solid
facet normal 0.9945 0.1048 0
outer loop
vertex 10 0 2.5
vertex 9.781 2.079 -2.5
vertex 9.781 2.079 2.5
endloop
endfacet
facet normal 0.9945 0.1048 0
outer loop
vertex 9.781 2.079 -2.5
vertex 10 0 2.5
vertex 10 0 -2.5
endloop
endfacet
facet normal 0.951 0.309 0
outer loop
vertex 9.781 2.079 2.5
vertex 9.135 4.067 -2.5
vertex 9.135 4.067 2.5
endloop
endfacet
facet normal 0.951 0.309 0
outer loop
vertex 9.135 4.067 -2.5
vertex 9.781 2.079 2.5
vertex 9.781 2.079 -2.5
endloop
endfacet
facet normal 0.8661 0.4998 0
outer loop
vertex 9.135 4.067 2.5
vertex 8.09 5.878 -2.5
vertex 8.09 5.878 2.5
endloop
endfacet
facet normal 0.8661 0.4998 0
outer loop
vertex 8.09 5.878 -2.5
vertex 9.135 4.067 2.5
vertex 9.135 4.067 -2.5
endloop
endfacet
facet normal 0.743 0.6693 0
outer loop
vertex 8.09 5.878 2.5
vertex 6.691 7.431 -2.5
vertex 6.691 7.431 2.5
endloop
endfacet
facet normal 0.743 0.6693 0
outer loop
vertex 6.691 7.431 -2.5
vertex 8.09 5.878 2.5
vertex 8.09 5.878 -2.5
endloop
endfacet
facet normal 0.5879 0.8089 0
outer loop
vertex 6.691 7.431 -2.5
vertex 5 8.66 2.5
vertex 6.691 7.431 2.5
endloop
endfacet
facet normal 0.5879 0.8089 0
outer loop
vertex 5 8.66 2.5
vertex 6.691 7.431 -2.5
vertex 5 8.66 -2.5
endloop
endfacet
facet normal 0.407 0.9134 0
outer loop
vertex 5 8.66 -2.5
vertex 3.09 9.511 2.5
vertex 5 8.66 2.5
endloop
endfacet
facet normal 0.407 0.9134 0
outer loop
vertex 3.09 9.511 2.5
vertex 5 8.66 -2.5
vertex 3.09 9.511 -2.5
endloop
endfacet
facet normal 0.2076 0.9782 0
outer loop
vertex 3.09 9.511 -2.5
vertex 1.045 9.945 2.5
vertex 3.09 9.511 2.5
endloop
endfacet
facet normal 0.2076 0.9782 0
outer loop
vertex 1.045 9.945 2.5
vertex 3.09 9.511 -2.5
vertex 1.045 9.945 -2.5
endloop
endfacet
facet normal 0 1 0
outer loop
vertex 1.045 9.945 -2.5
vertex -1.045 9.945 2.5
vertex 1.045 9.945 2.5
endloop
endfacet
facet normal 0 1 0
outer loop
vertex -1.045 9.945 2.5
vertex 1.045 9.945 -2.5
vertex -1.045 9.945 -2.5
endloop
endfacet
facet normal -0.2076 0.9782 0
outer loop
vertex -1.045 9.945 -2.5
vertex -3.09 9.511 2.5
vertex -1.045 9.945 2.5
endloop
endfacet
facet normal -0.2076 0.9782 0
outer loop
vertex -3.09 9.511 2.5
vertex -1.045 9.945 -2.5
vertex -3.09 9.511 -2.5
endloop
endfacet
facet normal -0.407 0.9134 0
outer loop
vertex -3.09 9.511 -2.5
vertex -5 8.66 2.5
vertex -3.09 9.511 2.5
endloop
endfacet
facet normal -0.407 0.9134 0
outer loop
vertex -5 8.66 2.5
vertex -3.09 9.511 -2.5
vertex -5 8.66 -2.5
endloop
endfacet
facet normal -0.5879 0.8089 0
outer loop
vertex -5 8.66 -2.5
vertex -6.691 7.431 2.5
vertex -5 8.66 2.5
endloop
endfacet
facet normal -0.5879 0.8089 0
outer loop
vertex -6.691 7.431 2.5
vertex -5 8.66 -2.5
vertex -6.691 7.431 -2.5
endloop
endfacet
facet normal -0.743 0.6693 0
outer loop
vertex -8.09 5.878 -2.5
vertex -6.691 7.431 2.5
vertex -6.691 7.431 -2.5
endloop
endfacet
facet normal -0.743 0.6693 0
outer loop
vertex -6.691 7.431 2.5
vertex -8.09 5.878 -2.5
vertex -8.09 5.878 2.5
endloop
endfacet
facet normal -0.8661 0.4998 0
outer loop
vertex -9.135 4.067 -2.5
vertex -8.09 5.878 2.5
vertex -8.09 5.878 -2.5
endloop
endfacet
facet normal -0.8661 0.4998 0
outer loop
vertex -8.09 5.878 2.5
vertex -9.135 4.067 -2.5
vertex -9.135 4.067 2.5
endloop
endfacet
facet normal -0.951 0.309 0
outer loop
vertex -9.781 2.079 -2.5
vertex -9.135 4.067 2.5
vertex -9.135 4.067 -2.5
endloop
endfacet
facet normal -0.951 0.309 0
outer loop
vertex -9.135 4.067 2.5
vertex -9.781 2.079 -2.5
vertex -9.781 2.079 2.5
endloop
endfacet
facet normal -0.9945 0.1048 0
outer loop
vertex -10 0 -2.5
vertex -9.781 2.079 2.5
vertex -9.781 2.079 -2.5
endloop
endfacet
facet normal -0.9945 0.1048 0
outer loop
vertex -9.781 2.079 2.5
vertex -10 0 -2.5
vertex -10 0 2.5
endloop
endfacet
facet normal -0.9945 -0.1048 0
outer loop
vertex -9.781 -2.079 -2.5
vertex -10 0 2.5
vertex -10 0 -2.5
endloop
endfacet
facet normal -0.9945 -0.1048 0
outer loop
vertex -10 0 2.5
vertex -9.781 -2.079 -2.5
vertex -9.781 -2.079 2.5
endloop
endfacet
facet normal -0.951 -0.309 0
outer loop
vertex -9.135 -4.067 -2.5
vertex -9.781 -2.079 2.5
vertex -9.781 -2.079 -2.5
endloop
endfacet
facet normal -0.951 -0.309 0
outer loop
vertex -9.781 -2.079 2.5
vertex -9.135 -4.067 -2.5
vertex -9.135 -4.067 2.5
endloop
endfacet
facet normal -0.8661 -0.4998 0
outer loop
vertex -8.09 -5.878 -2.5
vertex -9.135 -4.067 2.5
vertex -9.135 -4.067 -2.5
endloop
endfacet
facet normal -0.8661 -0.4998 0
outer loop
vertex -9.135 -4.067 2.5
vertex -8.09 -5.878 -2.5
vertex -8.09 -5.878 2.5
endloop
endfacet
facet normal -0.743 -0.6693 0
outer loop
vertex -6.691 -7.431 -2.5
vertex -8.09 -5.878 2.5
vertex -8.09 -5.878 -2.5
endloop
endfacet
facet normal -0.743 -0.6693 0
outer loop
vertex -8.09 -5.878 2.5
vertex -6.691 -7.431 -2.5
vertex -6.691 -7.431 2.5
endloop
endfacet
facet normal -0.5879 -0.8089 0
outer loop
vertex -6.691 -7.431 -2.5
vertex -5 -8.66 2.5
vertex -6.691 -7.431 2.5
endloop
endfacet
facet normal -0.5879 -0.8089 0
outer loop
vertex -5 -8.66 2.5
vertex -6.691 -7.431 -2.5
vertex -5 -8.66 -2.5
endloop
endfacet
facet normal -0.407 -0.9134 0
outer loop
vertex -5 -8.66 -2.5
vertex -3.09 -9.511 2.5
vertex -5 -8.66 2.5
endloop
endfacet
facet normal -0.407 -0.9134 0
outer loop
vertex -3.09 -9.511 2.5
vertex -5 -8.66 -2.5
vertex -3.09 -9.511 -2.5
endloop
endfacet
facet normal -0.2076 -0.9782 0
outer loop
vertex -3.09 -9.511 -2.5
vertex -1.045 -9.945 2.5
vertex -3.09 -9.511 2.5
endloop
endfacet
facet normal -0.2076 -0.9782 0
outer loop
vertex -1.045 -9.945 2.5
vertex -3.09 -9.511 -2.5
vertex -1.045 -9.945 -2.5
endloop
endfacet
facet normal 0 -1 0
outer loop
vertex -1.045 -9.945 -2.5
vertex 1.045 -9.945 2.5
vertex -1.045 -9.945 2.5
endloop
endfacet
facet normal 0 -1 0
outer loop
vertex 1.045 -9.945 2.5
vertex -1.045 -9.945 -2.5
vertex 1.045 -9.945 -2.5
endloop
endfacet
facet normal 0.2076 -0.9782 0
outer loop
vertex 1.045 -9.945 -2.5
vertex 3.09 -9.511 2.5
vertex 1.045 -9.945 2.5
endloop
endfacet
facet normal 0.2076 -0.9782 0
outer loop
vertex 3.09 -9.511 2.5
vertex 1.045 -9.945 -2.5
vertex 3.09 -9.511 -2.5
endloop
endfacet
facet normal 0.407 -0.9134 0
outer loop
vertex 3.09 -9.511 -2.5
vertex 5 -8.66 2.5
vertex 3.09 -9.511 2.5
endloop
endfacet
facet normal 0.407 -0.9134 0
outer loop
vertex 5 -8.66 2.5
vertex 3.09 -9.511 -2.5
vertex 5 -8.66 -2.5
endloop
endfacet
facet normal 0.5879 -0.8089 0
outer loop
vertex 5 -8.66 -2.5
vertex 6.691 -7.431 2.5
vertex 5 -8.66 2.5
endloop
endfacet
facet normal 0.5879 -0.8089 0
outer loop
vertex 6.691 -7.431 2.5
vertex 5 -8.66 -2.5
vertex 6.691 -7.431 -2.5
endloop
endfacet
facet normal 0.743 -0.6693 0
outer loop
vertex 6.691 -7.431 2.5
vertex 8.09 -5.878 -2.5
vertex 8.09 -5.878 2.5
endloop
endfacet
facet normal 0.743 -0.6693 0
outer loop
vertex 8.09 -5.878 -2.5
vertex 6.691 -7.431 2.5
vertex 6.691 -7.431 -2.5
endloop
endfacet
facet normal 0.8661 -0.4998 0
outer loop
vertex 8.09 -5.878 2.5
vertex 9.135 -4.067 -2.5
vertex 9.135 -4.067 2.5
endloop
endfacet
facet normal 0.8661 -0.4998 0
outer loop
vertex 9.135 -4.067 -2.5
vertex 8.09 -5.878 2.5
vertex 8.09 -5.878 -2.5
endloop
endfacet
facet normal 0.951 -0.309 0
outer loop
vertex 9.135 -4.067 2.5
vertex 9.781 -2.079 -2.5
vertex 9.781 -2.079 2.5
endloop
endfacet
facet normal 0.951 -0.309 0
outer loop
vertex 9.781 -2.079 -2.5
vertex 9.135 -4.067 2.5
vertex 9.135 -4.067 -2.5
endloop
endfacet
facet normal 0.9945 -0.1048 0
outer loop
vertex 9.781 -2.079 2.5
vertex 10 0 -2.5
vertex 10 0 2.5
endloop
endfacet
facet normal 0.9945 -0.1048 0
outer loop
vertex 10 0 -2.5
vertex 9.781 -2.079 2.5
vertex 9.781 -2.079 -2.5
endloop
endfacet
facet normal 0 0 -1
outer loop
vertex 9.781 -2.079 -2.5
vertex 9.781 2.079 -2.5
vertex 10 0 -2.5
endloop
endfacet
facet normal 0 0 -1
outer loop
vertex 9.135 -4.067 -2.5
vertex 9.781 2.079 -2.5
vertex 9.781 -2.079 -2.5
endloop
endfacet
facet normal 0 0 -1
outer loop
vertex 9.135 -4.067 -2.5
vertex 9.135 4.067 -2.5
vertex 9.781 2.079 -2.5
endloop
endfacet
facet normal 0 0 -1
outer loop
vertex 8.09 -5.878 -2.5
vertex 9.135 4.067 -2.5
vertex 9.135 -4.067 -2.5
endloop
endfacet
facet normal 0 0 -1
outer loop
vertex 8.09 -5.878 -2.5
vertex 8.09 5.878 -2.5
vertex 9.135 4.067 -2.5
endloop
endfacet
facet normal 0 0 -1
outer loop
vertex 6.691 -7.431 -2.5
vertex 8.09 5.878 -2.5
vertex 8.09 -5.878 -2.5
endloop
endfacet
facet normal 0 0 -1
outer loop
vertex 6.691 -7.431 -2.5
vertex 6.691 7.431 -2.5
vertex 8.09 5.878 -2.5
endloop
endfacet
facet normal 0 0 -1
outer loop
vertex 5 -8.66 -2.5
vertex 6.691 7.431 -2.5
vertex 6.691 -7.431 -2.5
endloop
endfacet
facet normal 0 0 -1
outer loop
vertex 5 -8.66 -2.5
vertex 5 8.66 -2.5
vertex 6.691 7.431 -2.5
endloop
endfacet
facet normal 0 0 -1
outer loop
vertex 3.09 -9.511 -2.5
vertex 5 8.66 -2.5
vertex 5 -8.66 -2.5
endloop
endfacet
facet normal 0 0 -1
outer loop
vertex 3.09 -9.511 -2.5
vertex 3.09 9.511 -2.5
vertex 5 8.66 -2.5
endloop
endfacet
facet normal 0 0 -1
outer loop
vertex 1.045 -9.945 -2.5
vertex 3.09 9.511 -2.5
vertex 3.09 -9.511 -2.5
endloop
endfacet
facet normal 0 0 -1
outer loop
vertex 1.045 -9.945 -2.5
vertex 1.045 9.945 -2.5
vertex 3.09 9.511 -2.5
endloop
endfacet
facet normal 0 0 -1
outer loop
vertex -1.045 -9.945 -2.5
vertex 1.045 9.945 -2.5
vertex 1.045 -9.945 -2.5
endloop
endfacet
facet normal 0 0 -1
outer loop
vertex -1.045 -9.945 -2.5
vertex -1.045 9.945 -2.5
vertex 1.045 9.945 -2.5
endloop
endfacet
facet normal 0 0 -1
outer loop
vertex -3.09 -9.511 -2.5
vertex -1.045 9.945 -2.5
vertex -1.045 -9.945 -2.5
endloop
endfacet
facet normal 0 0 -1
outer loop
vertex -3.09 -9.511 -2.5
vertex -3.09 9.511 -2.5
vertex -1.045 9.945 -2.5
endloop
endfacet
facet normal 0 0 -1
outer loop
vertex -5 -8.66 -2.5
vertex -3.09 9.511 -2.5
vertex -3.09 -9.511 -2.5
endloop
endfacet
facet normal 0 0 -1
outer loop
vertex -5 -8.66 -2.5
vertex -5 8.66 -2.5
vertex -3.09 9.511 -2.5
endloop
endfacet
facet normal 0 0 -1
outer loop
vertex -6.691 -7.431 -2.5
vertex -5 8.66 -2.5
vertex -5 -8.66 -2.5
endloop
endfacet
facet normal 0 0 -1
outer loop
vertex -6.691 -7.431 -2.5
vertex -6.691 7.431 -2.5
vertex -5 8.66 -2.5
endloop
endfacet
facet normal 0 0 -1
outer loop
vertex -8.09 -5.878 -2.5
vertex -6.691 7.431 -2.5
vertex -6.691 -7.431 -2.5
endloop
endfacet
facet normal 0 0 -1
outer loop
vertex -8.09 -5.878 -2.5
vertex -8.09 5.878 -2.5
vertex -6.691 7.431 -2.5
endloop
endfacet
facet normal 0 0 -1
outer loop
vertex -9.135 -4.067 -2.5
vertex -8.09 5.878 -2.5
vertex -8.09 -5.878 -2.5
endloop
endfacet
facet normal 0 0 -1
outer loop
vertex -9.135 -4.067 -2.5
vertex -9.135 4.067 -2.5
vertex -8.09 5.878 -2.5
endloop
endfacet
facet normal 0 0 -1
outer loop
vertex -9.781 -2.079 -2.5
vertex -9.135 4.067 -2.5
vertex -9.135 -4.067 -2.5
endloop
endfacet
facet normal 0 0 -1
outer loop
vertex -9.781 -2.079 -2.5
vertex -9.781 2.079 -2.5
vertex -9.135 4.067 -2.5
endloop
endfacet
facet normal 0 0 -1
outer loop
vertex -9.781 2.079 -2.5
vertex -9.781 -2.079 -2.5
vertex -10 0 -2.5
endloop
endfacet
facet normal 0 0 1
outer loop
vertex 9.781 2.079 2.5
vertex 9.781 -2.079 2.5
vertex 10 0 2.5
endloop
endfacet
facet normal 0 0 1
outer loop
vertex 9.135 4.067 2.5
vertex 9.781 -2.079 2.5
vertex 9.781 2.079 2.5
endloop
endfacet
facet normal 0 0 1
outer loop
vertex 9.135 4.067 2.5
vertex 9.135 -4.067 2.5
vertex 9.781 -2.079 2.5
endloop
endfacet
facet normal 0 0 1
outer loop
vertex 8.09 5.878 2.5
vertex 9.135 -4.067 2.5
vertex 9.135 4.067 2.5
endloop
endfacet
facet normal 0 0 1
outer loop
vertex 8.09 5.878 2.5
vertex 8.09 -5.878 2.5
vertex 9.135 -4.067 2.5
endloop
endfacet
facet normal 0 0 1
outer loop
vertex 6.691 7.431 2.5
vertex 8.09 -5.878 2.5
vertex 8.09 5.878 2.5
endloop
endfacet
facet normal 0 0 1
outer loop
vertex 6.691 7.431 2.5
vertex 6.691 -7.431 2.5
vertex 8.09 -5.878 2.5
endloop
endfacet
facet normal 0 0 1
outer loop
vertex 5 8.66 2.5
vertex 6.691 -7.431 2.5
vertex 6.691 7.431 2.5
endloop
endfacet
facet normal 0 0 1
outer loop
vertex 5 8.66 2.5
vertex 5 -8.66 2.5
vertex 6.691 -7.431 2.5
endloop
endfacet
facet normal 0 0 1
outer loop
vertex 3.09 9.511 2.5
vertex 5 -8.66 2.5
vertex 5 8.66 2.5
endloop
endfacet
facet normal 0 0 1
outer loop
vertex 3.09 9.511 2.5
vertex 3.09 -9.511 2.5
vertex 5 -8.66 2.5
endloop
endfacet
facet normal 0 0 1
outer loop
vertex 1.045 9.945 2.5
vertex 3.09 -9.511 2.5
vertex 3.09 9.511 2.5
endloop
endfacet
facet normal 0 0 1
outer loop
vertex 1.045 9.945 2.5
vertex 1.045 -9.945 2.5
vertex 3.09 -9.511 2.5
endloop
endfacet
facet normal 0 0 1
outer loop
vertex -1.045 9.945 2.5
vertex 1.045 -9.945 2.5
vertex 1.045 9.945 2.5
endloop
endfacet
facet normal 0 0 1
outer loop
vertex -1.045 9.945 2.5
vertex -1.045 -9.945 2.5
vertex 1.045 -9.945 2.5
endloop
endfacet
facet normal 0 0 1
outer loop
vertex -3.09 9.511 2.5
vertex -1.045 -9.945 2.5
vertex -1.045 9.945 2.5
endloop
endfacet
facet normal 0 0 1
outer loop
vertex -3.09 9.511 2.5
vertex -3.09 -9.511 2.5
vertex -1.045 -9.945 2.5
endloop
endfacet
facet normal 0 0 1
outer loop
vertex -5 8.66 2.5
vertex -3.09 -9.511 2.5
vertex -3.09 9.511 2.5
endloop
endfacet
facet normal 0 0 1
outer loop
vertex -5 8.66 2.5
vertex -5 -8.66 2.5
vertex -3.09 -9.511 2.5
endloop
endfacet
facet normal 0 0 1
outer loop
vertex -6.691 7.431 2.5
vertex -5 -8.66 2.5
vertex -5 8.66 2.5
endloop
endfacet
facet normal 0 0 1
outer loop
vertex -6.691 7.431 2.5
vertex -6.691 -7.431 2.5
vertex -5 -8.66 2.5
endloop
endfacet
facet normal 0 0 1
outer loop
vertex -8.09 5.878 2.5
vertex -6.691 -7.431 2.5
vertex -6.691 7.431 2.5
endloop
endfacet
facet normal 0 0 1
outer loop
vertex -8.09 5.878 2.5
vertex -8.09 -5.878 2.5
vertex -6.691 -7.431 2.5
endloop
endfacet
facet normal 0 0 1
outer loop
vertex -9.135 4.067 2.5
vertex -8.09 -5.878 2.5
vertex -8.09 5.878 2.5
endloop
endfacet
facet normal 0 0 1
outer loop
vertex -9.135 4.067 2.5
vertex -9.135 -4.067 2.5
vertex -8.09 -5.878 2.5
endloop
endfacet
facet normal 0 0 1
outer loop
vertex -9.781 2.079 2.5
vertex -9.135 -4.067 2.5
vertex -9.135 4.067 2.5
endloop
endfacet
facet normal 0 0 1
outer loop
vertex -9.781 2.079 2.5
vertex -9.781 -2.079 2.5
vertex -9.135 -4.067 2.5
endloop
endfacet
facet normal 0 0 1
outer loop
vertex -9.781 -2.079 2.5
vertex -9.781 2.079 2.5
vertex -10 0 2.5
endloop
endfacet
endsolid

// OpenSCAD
// Parameters for the central disk
disk_diameter = 20; // Diameter of the disk (adjust based on the images)
disk_thickness = 5; // Thickness of the disk (adjust based on the images)

// Central disk
module central_disk() {
    cylinder(d = disk_diameter, h = disk_thickness, center = true);
}

// Render the central disk
central_disk();
